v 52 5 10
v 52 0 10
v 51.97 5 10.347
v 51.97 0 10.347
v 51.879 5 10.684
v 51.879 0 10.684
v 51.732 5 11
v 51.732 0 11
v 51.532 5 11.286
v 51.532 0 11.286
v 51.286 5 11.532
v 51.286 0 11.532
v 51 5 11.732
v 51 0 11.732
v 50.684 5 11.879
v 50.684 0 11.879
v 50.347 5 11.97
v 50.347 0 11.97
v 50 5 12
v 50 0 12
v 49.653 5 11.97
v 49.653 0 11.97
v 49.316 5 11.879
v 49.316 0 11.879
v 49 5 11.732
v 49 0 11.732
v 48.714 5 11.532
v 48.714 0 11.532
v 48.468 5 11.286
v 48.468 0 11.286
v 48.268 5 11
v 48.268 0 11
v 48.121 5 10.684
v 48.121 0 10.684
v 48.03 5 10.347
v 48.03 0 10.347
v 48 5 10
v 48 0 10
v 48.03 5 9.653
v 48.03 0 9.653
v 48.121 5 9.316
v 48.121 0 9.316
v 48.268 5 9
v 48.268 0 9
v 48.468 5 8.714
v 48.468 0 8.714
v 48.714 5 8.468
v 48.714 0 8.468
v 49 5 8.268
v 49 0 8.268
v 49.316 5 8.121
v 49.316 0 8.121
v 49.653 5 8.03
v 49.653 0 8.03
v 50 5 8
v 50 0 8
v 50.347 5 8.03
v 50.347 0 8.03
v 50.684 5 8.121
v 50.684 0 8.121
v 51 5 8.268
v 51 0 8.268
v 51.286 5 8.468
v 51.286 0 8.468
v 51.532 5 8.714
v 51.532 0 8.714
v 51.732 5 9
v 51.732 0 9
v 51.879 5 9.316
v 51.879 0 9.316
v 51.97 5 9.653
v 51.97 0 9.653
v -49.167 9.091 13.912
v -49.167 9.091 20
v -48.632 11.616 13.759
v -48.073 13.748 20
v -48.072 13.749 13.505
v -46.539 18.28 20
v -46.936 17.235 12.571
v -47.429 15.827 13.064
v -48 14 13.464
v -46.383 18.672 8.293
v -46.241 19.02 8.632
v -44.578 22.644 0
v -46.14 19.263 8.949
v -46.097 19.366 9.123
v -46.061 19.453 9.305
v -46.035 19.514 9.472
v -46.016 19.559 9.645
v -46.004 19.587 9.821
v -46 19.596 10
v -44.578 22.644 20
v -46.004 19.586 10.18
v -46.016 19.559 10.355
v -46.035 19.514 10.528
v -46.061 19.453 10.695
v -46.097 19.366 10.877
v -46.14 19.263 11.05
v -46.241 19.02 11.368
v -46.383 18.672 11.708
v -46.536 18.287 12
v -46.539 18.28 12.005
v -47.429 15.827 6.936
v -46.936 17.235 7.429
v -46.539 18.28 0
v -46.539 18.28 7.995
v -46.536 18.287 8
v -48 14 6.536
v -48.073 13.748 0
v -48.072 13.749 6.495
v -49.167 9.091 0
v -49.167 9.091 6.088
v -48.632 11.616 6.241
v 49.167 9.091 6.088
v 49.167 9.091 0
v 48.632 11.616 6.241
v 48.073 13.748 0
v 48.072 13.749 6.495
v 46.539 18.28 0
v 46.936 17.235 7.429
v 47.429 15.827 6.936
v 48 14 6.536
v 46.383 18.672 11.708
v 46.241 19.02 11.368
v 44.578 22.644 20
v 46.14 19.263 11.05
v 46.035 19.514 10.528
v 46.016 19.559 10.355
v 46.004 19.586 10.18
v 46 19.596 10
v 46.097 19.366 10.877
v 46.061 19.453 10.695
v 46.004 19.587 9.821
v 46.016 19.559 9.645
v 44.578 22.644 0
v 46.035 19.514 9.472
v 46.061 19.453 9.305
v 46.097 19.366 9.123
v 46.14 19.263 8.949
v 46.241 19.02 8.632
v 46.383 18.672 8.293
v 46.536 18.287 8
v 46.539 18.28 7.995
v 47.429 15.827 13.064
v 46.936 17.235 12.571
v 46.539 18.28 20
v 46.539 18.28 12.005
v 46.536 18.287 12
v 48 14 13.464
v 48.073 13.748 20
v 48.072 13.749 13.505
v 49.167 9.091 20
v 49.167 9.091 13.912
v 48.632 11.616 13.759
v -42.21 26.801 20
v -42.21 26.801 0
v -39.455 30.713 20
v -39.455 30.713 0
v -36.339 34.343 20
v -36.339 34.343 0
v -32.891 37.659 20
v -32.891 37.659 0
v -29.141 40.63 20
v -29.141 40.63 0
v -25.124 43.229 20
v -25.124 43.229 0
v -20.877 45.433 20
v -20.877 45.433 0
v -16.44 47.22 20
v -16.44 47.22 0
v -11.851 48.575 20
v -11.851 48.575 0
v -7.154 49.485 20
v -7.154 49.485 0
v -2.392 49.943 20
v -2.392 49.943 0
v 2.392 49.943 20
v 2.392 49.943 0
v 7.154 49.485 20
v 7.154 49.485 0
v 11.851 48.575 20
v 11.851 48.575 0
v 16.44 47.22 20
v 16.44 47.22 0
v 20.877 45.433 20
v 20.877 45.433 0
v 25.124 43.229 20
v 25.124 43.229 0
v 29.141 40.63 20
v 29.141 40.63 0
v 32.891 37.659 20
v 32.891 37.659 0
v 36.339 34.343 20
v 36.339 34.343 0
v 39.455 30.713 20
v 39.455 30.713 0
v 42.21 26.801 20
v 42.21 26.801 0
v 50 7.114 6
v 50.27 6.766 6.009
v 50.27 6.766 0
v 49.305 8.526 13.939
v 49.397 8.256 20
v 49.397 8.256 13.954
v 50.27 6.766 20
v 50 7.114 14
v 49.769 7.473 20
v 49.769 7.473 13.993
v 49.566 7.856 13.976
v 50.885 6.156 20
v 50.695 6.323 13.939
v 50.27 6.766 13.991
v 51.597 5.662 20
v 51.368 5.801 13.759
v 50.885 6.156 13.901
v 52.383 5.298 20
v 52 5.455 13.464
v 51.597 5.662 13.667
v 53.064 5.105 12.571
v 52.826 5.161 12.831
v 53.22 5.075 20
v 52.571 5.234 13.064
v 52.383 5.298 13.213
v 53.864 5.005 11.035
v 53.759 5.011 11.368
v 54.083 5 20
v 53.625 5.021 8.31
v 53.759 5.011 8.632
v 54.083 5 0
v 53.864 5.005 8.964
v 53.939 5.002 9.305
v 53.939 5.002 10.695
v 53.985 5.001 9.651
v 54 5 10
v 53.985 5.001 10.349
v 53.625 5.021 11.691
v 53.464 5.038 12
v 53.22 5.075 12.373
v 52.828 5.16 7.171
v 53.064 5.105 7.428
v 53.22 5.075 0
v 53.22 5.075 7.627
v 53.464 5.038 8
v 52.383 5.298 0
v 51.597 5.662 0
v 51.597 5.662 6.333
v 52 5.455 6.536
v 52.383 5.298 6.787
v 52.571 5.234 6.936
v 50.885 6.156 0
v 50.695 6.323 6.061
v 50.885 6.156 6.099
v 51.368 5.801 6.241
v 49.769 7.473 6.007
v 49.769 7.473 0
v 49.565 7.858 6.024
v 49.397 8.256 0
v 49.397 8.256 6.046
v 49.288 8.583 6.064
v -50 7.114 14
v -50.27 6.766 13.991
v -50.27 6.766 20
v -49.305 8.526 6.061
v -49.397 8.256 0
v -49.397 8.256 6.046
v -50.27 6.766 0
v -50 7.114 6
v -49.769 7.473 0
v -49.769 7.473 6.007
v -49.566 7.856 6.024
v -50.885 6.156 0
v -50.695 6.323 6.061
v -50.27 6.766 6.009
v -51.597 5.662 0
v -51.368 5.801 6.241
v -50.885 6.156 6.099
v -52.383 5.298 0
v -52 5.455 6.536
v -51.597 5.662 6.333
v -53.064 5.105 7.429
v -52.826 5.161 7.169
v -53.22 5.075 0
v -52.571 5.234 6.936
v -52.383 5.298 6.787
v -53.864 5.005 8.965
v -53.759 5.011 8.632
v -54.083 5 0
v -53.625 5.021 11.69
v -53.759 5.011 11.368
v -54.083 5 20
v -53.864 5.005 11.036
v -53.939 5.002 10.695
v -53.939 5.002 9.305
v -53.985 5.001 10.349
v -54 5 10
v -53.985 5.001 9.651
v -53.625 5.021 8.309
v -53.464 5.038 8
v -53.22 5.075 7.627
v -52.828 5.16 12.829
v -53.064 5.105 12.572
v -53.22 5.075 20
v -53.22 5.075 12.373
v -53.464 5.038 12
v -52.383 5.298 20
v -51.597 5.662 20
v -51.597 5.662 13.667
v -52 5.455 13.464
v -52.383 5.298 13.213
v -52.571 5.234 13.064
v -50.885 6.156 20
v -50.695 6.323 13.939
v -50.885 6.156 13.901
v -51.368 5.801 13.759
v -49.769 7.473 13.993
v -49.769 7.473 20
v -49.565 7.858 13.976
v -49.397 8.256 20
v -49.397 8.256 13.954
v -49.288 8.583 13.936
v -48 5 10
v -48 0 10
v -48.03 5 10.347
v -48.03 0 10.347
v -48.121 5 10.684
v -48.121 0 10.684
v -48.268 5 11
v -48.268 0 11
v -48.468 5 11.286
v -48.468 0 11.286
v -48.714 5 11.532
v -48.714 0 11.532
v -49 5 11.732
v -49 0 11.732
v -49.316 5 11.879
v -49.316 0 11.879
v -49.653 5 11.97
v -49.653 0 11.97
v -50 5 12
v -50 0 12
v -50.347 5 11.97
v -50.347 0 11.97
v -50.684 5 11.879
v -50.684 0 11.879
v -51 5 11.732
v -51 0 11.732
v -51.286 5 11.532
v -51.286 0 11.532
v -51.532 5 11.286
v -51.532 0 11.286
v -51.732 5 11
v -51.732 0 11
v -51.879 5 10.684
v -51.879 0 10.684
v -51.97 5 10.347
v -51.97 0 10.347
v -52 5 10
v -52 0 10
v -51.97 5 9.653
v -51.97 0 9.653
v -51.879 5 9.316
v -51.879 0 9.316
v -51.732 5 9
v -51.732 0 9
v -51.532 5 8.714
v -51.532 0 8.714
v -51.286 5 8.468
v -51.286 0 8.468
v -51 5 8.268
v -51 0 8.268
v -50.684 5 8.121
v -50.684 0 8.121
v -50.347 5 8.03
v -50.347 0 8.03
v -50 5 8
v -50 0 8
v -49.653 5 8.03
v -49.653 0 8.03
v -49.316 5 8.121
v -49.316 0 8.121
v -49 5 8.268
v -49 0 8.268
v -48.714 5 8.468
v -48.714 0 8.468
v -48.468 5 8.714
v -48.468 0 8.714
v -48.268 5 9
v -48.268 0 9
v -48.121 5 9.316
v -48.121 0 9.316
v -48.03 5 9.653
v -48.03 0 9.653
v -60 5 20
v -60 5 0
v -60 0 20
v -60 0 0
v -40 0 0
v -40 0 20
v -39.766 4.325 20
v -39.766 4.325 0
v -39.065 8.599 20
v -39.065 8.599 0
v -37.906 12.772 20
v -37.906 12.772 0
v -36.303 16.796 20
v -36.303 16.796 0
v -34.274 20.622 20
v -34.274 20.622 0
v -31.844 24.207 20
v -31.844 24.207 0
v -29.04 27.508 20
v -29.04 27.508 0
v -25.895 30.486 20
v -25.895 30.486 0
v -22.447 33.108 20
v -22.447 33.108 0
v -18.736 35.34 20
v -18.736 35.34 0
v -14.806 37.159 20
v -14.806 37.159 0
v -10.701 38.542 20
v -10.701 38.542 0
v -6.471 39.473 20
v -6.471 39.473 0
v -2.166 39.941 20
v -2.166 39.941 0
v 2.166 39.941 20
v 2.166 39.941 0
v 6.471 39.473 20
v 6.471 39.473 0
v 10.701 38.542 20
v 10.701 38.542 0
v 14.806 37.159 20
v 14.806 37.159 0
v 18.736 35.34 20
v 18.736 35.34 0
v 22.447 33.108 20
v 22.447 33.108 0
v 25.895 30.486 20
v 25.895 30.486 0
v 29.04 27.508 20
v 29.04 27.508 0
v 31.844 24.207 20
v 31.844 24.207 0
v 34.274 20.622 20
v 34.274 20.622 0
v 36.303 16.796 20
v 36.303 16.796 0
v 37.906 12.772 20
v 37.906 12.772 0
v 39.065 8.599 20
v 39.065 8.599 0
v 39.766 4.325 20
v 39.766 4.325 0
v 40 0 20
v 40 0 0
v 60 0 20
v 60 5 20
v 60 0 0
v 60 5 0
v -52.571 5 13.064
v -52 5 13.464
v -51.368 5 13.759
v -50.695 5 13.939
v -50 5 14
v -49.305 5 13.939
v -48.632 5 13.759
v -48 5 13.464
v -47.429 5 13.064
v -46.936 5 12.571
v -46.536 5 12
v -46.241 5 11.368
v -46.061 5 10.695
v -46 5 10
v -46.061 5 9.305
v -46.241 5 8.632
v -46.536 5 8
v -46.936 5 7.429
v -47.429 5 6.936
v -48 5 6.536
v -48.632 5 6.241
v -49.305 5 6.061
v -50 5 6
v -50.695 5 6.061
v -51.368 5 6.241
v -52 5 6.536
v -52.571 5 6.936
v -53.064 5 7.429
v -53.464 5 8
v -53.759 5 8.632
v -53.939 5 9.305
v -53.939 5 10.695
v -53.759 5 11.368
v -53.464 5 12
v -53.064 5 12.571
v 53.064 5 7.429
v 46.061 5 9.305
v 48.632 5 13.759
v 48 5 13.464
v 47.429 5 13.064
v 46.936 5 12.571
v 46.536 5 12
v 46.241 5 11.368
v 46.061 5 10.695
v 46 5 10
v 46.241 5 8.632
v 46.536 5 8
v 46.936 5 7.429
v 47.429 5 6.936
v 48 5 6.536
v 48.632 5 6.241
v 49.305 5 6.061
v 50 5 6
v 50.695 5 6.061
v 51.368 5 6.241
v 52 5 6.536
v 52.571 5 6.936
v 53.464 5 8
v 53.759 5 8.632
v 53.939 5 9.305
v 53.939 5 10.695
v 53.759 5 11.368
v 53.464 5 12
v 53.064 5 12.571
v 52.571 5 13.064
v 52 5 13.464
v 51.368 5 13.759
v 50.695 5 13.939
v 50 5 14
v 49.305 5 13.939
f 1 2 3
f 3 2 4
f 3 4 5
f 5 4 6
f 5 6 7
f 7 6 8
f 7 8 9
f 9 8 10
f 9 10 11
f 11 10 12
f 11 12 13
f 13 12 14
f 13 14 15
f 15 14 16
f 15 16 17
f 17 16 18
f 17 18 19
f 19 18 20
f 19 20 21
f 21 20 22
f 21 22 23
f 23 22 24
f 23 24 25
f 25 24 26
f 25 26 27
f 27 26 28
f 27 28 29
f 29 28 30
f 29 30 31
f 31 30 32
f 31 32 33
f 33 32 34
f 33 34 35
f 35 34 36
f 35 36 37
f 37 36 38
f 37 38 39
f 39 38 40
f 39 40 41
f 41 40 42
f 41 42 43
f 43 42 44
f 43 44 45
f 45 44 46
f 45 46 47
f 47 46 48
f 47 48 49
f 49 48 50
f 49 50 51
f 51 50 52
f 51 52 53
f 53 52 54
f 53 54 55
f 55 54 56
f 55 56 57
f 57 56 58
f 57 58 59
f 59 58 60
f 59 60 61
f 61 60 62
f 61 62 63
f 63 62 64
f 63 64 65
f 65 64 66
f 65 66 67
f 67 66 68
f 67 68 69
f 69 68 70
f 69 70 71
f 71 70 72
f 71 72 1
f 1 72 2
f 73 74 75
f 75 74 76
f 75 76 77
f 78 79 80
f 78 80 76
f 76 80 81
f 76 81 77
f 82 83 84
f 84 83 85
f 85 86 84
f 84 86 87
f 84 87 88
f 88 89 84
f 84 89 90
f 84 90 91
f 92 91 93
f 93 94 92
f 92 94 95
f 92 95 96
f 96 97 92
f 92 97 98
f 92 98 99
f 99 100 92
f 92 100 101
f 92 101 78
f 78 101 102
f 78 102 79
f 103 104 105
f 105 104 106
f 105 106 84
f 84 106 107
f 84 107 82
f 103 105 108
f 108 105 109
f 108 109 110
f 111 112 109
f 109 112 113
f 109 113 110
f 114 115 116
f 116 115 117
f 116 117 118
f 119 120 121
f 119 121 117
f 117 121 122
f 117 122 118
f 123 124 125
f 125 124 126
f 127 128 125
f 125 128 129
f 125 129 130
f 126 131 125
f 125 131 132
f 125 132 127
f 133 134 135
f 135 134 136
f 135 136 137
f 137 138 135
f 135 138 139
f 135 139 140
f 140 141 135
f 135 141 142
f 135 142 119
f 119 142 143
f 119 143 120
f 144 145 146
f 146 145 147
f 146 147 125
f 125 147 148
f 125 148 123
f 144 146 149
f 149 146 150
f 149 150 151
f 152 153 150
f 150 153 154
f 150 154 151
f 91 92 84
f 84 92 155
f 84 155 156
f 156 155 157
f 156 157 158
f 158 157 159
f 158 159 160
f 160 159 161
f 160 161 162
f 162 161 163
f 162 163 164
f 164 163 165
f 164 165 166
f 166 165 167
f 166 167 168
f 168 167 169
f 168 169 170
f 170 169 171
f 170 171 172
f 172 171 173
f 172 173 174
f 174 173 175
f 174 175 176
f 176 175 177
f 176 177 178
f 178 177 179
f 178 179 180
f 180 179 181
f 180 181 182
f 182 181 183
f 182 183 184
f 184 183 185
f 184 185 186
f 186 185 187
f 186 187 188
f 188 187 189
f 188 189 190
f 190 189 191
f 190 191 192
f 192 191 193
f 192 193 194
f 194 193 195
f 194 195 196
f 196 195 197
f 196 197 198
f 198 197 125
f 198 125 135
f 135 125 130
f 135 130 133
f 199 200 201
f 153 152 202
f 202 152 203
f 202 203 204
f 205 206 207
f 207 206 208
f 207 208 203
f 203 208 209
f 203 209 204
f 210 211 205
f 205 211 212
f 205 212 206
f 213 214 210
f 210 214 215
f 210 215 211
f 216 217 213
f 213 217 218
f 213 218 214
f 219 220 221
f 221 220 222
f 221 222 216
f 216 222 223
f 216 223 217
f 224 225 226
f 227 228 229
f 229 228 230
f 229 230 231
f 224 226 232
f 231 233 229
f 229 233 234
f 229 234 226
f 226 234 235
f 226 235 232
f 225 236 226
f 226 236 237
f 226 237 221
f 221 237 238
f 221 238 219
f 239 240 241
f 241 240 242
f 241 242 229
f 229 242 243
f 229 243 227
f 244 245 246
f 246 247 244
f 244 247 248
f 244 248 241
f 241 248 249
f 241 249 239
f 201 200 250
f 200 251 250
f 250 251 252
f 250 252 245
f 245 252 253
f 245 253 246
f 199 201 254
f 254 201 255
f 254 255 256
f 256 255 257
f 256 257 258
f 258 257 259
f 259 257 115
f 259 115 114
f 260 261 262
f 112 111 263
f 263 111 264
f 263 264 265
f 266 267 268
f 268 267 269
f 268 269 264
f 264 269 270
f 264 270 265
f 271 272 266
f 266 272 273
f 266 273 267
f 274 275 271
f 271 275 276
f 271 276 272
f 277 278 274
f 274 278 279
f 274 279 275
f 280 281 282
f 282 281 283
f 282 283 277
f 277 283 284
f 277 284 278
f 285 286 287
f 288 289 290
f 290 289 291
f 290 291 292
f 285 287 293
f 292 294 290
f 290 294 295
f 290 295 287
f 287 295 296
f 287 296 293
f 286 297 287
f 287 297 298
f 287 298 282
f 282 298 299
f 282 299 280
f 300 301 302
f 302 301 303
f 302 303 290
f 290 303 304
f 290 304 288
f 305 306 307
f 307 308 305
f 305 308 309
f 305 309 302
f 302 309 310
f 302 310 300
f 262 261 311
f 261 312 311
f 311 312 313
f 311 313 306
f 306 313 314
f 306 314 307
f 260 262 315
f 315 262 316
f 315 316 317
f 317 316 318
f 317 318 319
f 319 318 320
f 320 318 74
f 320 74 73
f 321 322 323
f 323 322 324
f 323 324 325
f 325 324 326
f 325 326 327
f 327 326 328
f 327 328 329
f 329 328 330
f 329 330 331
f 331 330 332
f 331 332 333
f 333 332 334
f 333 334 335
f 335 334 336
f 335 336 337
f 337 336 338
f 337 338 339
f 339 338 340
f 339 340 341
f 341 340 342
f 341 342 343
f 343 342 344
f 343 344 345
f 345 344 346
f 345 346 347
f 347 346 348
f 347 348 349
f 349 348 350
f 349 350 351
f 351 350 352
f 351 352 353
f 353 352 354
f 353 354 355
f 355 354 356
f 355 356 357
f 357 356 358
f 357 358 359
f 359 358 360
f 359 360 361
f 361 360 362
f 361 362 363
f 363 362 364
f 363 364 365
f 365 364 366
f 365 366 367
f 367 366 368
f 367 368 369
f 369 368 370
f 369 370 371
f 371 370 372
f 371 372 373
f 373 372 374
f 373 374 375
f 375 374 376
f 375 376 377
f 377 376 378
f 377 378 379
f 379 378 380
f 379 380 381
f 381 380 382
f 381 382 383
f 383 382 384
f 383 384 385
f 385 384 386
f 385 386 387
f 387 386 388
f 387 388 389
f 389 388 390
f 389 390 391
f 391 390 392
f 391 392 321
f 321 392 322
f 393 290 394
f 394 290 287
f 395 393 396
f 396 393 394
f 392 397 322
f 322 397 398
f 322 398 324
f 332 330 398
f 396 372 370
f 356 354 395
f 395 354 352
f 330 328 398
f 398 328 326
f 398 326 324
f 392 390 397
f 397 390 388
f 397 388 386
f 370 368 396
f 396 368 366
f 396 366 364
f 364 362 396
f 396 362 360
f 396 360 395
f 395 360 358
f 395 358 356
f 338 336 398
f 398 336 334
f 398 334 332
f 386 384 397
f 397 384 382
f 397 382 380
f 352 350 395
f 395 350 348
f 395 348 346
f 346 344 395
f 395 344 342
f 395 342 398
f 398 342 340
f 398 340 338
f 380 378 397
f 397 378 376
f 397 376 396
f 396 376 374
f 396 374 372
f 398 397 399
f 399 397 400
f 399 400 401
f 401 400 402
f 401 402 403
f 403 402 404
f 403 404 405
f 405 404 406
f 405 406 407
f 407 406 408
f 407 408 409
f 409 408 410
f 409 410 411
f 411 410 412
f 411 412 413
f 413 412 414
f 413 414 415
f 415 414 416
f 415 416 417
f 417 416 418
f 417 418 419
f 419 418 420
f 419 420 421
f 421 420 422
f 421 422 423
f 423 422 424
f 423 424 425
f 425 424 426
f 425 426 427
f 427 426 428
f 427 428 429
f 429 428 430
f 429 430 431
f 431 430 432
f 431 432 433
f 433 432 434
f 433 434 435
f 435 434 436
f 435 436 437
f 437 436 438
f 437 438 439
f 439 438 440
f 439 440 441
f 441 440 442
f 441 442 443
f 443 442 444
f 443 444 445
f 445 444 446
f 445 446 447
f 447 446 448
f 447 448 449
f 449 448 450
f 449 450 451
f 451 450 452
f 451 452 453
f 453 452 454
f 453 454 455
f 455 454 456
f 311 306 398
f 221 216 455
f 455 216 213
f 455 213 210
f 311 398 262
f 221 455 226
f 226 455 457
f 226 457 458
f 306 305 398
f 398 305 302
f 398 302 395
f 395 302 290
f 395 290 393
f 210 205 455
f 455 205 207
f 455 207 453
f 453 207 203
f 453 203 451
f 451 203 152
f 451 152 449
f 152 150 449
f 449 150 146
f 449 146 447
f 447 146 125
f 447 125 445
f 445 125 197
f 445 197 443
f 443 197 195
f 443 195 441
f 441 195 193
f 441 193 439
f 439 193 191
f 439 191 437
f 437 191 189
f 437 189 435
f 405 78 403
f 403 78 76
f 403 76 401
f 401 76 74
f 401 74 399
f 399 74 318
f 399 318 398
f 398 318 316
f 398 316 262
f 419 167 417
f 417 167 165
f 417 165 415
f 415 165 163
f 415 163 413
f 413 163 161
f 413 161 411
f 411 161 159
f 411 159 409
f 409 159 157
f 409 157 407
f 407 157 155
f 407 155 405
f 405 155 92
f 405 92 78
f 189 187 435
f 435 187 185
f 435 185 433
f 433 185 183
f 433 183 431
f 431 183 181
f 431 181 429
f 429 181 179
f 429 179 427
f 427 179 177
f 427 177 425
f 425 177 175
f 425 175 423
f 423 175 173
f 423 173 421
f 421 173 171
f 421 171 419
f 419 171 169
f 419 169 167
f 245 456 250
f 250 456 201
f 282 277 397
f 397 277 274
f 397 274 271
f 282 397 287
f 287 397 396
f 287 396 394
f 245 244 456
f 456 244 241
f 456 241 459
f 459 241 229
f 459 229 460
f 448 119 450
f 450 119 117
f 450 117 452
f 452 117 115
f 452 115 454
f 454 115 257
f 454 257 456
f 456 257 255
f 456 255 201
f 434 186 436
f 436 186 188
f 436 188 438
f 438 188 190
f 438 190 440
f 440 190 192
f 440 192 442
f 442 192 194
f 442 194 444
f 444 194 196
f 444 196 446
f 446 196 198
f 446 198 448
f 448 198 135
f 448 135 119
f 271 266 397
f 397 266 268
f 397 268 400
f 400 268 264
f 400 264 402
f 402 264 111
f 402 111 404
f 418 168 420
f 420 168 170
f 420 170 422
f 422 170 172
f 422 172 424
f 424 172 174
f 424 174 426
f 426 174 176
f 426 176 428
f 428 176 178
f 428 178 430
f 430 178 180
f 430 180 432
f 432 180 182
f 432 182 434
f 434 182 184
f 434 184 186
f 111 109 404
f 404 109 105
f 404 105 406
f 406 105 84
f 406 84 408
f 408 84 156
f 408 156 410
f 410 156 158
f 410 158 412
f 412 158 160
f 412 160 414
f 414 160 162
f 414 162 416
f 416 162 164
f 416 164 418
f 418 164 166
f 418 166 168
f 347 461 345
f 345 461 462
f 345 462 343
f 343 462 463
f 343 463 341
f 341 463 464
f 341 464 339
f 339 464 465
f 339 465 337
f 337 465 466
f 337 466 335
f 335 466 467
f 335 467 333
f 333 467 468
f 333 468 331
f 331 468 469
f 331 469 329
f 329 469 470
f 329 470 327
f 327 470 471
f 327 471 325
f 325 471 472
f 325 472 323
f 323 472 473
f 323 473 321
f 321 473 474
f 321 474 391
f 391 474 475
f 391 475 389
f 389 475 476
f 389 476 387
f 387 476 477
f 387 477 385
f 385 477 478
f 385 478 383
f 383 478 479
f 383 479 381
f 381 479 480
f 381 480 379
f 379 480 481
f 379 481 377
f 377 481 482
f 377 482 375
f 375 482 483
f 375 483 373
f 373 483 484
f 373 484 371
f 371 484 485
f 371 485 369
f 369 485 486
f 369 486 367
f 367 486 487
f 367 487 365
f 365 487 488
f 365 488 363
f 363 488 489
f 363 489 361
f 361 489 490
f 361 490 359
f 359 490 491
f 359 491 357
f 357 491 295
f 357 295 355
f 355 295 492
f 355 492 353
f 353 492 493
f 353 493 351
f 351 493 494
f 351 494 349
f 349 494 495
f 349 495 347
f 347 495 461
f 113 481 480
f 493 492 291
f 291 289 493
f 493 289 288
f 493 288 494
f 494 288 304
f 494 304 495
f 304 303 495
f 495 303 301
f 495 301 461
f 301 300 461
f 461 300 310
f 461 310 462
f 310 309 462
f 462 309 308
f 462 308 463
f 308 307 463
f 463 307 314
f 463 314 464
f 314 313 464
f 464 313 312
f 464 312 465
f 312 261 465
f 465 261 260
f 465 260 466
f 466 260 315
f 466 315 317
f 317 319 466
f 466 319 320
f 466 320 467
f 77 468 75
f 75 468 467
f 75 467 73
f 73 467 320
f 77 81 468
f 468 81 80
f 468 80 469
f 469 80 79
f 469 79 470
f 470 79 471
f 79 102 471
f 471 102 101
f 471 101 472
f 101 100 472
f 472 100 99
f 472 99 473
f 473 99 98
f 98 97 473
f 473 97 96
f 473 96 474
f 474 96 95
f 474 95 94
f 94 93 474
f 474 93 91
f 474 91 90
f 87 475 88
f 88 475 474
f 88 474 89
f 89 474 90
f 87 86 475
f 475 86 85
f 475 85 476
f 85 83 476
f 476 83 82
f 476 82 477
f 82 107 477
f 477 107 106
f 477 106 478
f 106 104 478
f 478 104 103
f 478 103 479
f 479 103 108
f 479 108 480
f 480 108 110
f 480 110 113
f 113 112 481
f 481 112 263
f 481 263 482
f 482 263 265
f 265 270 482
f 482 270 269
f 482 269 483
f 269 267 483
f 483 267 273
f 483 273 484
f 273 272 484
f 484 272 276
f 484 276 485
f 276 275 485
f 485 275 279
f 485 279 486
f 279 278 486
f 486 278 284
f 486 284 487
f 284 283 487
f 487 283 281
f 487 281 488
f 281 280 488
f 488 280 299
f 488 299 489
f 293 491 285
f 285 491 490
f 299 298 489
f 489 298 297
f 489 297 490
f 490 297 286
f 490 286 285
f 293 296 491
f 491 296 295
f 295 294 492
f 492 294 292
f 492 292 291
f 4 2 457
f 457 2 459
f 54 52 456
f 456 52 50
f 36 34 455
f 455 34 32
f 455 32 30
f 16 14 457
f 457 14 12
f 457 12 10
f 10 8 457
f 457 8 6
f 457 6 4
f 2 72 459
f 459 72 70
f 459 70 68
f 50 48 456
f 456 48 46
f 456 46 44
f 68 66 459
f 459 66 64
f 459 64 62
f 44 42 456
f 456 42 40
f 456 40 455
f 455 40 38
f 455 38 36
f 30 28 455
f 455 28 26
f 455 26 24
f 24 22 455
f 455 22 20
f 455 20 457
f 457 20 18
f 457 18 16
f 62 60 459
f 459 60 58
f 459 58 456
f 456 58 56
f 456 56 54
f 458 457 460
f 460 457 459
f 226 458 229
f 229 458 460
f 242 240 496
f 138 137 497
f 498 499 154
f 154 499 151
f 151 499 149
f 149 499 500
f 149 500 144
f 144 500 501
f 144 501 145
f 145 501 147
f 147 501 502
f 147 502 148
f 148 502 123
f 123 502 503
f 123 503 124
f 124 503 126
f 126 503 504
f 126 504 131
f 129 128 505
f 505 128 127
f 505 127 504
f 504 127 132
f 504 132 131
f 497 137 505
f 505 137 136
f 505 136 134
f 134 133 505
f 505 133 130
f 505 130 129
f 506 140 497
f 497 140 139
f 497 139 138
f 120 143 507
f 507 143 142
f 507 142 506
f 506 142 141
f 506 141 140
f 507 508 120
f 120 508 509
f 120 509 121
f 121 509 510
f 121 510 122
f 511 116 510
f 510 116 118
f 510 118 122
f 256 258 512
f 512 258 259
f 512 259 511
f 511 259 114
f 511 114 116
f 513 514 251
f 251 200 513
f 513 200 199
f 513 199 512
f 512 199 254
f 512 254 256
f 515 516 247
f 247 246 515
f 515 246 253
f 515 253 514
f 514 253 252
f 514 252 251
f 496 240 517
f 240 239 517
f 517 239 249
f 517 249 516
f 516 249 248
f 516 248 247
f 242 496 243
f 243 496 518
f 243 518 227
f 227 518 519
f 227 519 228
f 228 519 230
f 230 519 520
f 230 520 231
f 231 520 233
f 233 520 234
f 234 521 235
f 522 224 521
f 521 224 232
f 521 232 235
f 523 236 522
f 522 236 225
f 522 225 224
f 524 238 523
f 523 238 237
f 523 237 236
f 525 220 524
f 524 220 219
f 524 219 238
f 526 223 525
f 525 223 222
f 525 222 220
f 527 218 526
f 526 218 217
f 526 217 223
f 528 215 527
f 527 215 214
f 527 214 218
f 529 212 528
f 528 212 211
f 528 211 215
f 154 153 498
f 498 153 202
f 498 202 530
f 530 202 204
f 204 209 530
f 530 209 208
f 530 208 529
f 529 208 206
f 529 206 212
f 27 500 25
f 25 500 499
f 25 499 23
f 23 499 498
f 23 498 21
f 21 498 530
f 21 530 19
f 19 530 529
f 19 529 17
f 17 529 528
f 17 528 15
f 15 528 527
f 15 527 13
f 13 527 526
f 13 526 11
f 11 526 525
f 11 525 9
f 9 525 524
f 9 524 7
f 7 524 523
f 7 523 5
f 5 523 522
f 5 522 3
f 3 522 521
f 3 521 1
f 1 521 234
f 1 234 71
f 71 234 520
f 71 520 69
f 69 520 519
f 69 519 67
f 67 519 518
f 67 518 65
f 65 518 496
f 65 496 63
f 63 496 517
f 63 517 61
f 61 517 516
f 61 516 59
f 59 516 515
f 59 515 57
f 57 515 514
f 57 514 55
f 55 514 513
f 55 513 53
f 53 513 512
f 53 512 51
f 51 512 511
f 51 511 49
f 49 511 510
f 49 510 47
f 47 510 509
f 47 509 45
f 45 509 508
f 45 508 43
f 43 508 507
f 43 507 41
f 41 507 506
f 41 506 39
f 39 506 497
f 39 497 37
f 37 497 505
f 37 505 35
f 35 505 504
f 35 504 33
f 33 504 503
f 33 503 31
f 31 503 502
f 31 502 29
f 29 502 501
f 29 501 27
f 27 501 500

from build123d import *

# Parameters (mm, degrees)
BOSS_EXTRUDE1_DEPTH = 20
CUT_EXTRUDE1_DEPTH  = 20
SKETCH4_R           = 4
SKETCH4_R_2         = 2
CUT_EXTRUDE2_DEPTH  = 37


with BuildPart() as part:
    # Sketch1 → Boss-Extrude1 (new body)
    with BuildSketch(Plane.XY):
        with BuildLine():
            Line((-40, 0), (-60, 0))
            Line((-60, 0), (-60, 5))
            Line((-60, 5), (-54.083269132, 5))
            ThreePointArc((-54.083269132, 5), (-50.885258387, 6.156469426), (-49.166608302, 9.090909091))
            ThreePointArc((-49.166608302, 9.090909091), (-31.980107453, 38.435305739), (0, 50))
            Line((0, 50), (0, 40))
            ThreePointArc((0, 40), (-28.284271247, 28.284271247), (-40, 0))
        make_face()
    boss_extrude1 = extrude(amount=BOSS_EXTRUDE1_DEPTH)

    # Sketch2 → Cut-Extrude1 (cut)
    with BuildSketch(Plane.XZ):
        with BuildLine():
            ThreePointArc((-48, 10), (-49.234633135, 11.847759065), (-51.414213562, 11.414213562))
            Line((-51.414213562, 11.414213562), (-48.585786438, 8.585786438))
            ThreePointArc((-48.585786438, 8.585786438), (-48.152240935, 9.234633135), (-48, 10))
        make_face()
        with BuildLine():
            Line((-48.585786438, 8.585786438), (-51.414213562, 11.414213562))
            ThreePointArc((-51.414213562, 11.414213562), (-51.414213562, 8.585786438), (-48.585786438, 8.585786438))
        make_face()
    cut_extrude1 = extrude(amount=-CUT_EXTRUDE1_DEPTH, mode=Mode.SUBTRACT)

    # Sketch4 → Cut-Extrude2 (cut)
    with BuildSketch(Plane(origin=(0, 5, 0), x_dir=(1, 0, 0), z_dir=(0, 1, 0))):
        with Locations((-50, -10)):
            Circle(SKETCH4_R)
        with Locations((-50, -10)):
            Circle(SKETCH4_R_2, mode=Mode.SUBTRACT)
    cut_extrude2 = extrude(amount=CUT_EXTRUDE2_DEPTH, mode=Mode.SUBTRACT)

    # Mirror1: Boss-Extrude1, Cut-Extrude1, Cut-Extrude2 across plane
    add(boss_extrude1.mirror(Plane(origin=(0, 0, 20), x_dir=(0, 0, 1), z_dir=(1, 0, 0))))
    add(cut_extrude1.mirror(Plane(origin=(0, 0, 20), x_dir=(0, 0, 1), z_dir=(1, 0, 0))), mode=Mode.SUBTRACT)
    add(cut_extrude2.mirror(Plane(origin=(0, 0, 20), x_dir=(0, 0, 1), z_dir=(1, 0, 0))), mode=Mode.SUBTRACT)


solid = part.part
